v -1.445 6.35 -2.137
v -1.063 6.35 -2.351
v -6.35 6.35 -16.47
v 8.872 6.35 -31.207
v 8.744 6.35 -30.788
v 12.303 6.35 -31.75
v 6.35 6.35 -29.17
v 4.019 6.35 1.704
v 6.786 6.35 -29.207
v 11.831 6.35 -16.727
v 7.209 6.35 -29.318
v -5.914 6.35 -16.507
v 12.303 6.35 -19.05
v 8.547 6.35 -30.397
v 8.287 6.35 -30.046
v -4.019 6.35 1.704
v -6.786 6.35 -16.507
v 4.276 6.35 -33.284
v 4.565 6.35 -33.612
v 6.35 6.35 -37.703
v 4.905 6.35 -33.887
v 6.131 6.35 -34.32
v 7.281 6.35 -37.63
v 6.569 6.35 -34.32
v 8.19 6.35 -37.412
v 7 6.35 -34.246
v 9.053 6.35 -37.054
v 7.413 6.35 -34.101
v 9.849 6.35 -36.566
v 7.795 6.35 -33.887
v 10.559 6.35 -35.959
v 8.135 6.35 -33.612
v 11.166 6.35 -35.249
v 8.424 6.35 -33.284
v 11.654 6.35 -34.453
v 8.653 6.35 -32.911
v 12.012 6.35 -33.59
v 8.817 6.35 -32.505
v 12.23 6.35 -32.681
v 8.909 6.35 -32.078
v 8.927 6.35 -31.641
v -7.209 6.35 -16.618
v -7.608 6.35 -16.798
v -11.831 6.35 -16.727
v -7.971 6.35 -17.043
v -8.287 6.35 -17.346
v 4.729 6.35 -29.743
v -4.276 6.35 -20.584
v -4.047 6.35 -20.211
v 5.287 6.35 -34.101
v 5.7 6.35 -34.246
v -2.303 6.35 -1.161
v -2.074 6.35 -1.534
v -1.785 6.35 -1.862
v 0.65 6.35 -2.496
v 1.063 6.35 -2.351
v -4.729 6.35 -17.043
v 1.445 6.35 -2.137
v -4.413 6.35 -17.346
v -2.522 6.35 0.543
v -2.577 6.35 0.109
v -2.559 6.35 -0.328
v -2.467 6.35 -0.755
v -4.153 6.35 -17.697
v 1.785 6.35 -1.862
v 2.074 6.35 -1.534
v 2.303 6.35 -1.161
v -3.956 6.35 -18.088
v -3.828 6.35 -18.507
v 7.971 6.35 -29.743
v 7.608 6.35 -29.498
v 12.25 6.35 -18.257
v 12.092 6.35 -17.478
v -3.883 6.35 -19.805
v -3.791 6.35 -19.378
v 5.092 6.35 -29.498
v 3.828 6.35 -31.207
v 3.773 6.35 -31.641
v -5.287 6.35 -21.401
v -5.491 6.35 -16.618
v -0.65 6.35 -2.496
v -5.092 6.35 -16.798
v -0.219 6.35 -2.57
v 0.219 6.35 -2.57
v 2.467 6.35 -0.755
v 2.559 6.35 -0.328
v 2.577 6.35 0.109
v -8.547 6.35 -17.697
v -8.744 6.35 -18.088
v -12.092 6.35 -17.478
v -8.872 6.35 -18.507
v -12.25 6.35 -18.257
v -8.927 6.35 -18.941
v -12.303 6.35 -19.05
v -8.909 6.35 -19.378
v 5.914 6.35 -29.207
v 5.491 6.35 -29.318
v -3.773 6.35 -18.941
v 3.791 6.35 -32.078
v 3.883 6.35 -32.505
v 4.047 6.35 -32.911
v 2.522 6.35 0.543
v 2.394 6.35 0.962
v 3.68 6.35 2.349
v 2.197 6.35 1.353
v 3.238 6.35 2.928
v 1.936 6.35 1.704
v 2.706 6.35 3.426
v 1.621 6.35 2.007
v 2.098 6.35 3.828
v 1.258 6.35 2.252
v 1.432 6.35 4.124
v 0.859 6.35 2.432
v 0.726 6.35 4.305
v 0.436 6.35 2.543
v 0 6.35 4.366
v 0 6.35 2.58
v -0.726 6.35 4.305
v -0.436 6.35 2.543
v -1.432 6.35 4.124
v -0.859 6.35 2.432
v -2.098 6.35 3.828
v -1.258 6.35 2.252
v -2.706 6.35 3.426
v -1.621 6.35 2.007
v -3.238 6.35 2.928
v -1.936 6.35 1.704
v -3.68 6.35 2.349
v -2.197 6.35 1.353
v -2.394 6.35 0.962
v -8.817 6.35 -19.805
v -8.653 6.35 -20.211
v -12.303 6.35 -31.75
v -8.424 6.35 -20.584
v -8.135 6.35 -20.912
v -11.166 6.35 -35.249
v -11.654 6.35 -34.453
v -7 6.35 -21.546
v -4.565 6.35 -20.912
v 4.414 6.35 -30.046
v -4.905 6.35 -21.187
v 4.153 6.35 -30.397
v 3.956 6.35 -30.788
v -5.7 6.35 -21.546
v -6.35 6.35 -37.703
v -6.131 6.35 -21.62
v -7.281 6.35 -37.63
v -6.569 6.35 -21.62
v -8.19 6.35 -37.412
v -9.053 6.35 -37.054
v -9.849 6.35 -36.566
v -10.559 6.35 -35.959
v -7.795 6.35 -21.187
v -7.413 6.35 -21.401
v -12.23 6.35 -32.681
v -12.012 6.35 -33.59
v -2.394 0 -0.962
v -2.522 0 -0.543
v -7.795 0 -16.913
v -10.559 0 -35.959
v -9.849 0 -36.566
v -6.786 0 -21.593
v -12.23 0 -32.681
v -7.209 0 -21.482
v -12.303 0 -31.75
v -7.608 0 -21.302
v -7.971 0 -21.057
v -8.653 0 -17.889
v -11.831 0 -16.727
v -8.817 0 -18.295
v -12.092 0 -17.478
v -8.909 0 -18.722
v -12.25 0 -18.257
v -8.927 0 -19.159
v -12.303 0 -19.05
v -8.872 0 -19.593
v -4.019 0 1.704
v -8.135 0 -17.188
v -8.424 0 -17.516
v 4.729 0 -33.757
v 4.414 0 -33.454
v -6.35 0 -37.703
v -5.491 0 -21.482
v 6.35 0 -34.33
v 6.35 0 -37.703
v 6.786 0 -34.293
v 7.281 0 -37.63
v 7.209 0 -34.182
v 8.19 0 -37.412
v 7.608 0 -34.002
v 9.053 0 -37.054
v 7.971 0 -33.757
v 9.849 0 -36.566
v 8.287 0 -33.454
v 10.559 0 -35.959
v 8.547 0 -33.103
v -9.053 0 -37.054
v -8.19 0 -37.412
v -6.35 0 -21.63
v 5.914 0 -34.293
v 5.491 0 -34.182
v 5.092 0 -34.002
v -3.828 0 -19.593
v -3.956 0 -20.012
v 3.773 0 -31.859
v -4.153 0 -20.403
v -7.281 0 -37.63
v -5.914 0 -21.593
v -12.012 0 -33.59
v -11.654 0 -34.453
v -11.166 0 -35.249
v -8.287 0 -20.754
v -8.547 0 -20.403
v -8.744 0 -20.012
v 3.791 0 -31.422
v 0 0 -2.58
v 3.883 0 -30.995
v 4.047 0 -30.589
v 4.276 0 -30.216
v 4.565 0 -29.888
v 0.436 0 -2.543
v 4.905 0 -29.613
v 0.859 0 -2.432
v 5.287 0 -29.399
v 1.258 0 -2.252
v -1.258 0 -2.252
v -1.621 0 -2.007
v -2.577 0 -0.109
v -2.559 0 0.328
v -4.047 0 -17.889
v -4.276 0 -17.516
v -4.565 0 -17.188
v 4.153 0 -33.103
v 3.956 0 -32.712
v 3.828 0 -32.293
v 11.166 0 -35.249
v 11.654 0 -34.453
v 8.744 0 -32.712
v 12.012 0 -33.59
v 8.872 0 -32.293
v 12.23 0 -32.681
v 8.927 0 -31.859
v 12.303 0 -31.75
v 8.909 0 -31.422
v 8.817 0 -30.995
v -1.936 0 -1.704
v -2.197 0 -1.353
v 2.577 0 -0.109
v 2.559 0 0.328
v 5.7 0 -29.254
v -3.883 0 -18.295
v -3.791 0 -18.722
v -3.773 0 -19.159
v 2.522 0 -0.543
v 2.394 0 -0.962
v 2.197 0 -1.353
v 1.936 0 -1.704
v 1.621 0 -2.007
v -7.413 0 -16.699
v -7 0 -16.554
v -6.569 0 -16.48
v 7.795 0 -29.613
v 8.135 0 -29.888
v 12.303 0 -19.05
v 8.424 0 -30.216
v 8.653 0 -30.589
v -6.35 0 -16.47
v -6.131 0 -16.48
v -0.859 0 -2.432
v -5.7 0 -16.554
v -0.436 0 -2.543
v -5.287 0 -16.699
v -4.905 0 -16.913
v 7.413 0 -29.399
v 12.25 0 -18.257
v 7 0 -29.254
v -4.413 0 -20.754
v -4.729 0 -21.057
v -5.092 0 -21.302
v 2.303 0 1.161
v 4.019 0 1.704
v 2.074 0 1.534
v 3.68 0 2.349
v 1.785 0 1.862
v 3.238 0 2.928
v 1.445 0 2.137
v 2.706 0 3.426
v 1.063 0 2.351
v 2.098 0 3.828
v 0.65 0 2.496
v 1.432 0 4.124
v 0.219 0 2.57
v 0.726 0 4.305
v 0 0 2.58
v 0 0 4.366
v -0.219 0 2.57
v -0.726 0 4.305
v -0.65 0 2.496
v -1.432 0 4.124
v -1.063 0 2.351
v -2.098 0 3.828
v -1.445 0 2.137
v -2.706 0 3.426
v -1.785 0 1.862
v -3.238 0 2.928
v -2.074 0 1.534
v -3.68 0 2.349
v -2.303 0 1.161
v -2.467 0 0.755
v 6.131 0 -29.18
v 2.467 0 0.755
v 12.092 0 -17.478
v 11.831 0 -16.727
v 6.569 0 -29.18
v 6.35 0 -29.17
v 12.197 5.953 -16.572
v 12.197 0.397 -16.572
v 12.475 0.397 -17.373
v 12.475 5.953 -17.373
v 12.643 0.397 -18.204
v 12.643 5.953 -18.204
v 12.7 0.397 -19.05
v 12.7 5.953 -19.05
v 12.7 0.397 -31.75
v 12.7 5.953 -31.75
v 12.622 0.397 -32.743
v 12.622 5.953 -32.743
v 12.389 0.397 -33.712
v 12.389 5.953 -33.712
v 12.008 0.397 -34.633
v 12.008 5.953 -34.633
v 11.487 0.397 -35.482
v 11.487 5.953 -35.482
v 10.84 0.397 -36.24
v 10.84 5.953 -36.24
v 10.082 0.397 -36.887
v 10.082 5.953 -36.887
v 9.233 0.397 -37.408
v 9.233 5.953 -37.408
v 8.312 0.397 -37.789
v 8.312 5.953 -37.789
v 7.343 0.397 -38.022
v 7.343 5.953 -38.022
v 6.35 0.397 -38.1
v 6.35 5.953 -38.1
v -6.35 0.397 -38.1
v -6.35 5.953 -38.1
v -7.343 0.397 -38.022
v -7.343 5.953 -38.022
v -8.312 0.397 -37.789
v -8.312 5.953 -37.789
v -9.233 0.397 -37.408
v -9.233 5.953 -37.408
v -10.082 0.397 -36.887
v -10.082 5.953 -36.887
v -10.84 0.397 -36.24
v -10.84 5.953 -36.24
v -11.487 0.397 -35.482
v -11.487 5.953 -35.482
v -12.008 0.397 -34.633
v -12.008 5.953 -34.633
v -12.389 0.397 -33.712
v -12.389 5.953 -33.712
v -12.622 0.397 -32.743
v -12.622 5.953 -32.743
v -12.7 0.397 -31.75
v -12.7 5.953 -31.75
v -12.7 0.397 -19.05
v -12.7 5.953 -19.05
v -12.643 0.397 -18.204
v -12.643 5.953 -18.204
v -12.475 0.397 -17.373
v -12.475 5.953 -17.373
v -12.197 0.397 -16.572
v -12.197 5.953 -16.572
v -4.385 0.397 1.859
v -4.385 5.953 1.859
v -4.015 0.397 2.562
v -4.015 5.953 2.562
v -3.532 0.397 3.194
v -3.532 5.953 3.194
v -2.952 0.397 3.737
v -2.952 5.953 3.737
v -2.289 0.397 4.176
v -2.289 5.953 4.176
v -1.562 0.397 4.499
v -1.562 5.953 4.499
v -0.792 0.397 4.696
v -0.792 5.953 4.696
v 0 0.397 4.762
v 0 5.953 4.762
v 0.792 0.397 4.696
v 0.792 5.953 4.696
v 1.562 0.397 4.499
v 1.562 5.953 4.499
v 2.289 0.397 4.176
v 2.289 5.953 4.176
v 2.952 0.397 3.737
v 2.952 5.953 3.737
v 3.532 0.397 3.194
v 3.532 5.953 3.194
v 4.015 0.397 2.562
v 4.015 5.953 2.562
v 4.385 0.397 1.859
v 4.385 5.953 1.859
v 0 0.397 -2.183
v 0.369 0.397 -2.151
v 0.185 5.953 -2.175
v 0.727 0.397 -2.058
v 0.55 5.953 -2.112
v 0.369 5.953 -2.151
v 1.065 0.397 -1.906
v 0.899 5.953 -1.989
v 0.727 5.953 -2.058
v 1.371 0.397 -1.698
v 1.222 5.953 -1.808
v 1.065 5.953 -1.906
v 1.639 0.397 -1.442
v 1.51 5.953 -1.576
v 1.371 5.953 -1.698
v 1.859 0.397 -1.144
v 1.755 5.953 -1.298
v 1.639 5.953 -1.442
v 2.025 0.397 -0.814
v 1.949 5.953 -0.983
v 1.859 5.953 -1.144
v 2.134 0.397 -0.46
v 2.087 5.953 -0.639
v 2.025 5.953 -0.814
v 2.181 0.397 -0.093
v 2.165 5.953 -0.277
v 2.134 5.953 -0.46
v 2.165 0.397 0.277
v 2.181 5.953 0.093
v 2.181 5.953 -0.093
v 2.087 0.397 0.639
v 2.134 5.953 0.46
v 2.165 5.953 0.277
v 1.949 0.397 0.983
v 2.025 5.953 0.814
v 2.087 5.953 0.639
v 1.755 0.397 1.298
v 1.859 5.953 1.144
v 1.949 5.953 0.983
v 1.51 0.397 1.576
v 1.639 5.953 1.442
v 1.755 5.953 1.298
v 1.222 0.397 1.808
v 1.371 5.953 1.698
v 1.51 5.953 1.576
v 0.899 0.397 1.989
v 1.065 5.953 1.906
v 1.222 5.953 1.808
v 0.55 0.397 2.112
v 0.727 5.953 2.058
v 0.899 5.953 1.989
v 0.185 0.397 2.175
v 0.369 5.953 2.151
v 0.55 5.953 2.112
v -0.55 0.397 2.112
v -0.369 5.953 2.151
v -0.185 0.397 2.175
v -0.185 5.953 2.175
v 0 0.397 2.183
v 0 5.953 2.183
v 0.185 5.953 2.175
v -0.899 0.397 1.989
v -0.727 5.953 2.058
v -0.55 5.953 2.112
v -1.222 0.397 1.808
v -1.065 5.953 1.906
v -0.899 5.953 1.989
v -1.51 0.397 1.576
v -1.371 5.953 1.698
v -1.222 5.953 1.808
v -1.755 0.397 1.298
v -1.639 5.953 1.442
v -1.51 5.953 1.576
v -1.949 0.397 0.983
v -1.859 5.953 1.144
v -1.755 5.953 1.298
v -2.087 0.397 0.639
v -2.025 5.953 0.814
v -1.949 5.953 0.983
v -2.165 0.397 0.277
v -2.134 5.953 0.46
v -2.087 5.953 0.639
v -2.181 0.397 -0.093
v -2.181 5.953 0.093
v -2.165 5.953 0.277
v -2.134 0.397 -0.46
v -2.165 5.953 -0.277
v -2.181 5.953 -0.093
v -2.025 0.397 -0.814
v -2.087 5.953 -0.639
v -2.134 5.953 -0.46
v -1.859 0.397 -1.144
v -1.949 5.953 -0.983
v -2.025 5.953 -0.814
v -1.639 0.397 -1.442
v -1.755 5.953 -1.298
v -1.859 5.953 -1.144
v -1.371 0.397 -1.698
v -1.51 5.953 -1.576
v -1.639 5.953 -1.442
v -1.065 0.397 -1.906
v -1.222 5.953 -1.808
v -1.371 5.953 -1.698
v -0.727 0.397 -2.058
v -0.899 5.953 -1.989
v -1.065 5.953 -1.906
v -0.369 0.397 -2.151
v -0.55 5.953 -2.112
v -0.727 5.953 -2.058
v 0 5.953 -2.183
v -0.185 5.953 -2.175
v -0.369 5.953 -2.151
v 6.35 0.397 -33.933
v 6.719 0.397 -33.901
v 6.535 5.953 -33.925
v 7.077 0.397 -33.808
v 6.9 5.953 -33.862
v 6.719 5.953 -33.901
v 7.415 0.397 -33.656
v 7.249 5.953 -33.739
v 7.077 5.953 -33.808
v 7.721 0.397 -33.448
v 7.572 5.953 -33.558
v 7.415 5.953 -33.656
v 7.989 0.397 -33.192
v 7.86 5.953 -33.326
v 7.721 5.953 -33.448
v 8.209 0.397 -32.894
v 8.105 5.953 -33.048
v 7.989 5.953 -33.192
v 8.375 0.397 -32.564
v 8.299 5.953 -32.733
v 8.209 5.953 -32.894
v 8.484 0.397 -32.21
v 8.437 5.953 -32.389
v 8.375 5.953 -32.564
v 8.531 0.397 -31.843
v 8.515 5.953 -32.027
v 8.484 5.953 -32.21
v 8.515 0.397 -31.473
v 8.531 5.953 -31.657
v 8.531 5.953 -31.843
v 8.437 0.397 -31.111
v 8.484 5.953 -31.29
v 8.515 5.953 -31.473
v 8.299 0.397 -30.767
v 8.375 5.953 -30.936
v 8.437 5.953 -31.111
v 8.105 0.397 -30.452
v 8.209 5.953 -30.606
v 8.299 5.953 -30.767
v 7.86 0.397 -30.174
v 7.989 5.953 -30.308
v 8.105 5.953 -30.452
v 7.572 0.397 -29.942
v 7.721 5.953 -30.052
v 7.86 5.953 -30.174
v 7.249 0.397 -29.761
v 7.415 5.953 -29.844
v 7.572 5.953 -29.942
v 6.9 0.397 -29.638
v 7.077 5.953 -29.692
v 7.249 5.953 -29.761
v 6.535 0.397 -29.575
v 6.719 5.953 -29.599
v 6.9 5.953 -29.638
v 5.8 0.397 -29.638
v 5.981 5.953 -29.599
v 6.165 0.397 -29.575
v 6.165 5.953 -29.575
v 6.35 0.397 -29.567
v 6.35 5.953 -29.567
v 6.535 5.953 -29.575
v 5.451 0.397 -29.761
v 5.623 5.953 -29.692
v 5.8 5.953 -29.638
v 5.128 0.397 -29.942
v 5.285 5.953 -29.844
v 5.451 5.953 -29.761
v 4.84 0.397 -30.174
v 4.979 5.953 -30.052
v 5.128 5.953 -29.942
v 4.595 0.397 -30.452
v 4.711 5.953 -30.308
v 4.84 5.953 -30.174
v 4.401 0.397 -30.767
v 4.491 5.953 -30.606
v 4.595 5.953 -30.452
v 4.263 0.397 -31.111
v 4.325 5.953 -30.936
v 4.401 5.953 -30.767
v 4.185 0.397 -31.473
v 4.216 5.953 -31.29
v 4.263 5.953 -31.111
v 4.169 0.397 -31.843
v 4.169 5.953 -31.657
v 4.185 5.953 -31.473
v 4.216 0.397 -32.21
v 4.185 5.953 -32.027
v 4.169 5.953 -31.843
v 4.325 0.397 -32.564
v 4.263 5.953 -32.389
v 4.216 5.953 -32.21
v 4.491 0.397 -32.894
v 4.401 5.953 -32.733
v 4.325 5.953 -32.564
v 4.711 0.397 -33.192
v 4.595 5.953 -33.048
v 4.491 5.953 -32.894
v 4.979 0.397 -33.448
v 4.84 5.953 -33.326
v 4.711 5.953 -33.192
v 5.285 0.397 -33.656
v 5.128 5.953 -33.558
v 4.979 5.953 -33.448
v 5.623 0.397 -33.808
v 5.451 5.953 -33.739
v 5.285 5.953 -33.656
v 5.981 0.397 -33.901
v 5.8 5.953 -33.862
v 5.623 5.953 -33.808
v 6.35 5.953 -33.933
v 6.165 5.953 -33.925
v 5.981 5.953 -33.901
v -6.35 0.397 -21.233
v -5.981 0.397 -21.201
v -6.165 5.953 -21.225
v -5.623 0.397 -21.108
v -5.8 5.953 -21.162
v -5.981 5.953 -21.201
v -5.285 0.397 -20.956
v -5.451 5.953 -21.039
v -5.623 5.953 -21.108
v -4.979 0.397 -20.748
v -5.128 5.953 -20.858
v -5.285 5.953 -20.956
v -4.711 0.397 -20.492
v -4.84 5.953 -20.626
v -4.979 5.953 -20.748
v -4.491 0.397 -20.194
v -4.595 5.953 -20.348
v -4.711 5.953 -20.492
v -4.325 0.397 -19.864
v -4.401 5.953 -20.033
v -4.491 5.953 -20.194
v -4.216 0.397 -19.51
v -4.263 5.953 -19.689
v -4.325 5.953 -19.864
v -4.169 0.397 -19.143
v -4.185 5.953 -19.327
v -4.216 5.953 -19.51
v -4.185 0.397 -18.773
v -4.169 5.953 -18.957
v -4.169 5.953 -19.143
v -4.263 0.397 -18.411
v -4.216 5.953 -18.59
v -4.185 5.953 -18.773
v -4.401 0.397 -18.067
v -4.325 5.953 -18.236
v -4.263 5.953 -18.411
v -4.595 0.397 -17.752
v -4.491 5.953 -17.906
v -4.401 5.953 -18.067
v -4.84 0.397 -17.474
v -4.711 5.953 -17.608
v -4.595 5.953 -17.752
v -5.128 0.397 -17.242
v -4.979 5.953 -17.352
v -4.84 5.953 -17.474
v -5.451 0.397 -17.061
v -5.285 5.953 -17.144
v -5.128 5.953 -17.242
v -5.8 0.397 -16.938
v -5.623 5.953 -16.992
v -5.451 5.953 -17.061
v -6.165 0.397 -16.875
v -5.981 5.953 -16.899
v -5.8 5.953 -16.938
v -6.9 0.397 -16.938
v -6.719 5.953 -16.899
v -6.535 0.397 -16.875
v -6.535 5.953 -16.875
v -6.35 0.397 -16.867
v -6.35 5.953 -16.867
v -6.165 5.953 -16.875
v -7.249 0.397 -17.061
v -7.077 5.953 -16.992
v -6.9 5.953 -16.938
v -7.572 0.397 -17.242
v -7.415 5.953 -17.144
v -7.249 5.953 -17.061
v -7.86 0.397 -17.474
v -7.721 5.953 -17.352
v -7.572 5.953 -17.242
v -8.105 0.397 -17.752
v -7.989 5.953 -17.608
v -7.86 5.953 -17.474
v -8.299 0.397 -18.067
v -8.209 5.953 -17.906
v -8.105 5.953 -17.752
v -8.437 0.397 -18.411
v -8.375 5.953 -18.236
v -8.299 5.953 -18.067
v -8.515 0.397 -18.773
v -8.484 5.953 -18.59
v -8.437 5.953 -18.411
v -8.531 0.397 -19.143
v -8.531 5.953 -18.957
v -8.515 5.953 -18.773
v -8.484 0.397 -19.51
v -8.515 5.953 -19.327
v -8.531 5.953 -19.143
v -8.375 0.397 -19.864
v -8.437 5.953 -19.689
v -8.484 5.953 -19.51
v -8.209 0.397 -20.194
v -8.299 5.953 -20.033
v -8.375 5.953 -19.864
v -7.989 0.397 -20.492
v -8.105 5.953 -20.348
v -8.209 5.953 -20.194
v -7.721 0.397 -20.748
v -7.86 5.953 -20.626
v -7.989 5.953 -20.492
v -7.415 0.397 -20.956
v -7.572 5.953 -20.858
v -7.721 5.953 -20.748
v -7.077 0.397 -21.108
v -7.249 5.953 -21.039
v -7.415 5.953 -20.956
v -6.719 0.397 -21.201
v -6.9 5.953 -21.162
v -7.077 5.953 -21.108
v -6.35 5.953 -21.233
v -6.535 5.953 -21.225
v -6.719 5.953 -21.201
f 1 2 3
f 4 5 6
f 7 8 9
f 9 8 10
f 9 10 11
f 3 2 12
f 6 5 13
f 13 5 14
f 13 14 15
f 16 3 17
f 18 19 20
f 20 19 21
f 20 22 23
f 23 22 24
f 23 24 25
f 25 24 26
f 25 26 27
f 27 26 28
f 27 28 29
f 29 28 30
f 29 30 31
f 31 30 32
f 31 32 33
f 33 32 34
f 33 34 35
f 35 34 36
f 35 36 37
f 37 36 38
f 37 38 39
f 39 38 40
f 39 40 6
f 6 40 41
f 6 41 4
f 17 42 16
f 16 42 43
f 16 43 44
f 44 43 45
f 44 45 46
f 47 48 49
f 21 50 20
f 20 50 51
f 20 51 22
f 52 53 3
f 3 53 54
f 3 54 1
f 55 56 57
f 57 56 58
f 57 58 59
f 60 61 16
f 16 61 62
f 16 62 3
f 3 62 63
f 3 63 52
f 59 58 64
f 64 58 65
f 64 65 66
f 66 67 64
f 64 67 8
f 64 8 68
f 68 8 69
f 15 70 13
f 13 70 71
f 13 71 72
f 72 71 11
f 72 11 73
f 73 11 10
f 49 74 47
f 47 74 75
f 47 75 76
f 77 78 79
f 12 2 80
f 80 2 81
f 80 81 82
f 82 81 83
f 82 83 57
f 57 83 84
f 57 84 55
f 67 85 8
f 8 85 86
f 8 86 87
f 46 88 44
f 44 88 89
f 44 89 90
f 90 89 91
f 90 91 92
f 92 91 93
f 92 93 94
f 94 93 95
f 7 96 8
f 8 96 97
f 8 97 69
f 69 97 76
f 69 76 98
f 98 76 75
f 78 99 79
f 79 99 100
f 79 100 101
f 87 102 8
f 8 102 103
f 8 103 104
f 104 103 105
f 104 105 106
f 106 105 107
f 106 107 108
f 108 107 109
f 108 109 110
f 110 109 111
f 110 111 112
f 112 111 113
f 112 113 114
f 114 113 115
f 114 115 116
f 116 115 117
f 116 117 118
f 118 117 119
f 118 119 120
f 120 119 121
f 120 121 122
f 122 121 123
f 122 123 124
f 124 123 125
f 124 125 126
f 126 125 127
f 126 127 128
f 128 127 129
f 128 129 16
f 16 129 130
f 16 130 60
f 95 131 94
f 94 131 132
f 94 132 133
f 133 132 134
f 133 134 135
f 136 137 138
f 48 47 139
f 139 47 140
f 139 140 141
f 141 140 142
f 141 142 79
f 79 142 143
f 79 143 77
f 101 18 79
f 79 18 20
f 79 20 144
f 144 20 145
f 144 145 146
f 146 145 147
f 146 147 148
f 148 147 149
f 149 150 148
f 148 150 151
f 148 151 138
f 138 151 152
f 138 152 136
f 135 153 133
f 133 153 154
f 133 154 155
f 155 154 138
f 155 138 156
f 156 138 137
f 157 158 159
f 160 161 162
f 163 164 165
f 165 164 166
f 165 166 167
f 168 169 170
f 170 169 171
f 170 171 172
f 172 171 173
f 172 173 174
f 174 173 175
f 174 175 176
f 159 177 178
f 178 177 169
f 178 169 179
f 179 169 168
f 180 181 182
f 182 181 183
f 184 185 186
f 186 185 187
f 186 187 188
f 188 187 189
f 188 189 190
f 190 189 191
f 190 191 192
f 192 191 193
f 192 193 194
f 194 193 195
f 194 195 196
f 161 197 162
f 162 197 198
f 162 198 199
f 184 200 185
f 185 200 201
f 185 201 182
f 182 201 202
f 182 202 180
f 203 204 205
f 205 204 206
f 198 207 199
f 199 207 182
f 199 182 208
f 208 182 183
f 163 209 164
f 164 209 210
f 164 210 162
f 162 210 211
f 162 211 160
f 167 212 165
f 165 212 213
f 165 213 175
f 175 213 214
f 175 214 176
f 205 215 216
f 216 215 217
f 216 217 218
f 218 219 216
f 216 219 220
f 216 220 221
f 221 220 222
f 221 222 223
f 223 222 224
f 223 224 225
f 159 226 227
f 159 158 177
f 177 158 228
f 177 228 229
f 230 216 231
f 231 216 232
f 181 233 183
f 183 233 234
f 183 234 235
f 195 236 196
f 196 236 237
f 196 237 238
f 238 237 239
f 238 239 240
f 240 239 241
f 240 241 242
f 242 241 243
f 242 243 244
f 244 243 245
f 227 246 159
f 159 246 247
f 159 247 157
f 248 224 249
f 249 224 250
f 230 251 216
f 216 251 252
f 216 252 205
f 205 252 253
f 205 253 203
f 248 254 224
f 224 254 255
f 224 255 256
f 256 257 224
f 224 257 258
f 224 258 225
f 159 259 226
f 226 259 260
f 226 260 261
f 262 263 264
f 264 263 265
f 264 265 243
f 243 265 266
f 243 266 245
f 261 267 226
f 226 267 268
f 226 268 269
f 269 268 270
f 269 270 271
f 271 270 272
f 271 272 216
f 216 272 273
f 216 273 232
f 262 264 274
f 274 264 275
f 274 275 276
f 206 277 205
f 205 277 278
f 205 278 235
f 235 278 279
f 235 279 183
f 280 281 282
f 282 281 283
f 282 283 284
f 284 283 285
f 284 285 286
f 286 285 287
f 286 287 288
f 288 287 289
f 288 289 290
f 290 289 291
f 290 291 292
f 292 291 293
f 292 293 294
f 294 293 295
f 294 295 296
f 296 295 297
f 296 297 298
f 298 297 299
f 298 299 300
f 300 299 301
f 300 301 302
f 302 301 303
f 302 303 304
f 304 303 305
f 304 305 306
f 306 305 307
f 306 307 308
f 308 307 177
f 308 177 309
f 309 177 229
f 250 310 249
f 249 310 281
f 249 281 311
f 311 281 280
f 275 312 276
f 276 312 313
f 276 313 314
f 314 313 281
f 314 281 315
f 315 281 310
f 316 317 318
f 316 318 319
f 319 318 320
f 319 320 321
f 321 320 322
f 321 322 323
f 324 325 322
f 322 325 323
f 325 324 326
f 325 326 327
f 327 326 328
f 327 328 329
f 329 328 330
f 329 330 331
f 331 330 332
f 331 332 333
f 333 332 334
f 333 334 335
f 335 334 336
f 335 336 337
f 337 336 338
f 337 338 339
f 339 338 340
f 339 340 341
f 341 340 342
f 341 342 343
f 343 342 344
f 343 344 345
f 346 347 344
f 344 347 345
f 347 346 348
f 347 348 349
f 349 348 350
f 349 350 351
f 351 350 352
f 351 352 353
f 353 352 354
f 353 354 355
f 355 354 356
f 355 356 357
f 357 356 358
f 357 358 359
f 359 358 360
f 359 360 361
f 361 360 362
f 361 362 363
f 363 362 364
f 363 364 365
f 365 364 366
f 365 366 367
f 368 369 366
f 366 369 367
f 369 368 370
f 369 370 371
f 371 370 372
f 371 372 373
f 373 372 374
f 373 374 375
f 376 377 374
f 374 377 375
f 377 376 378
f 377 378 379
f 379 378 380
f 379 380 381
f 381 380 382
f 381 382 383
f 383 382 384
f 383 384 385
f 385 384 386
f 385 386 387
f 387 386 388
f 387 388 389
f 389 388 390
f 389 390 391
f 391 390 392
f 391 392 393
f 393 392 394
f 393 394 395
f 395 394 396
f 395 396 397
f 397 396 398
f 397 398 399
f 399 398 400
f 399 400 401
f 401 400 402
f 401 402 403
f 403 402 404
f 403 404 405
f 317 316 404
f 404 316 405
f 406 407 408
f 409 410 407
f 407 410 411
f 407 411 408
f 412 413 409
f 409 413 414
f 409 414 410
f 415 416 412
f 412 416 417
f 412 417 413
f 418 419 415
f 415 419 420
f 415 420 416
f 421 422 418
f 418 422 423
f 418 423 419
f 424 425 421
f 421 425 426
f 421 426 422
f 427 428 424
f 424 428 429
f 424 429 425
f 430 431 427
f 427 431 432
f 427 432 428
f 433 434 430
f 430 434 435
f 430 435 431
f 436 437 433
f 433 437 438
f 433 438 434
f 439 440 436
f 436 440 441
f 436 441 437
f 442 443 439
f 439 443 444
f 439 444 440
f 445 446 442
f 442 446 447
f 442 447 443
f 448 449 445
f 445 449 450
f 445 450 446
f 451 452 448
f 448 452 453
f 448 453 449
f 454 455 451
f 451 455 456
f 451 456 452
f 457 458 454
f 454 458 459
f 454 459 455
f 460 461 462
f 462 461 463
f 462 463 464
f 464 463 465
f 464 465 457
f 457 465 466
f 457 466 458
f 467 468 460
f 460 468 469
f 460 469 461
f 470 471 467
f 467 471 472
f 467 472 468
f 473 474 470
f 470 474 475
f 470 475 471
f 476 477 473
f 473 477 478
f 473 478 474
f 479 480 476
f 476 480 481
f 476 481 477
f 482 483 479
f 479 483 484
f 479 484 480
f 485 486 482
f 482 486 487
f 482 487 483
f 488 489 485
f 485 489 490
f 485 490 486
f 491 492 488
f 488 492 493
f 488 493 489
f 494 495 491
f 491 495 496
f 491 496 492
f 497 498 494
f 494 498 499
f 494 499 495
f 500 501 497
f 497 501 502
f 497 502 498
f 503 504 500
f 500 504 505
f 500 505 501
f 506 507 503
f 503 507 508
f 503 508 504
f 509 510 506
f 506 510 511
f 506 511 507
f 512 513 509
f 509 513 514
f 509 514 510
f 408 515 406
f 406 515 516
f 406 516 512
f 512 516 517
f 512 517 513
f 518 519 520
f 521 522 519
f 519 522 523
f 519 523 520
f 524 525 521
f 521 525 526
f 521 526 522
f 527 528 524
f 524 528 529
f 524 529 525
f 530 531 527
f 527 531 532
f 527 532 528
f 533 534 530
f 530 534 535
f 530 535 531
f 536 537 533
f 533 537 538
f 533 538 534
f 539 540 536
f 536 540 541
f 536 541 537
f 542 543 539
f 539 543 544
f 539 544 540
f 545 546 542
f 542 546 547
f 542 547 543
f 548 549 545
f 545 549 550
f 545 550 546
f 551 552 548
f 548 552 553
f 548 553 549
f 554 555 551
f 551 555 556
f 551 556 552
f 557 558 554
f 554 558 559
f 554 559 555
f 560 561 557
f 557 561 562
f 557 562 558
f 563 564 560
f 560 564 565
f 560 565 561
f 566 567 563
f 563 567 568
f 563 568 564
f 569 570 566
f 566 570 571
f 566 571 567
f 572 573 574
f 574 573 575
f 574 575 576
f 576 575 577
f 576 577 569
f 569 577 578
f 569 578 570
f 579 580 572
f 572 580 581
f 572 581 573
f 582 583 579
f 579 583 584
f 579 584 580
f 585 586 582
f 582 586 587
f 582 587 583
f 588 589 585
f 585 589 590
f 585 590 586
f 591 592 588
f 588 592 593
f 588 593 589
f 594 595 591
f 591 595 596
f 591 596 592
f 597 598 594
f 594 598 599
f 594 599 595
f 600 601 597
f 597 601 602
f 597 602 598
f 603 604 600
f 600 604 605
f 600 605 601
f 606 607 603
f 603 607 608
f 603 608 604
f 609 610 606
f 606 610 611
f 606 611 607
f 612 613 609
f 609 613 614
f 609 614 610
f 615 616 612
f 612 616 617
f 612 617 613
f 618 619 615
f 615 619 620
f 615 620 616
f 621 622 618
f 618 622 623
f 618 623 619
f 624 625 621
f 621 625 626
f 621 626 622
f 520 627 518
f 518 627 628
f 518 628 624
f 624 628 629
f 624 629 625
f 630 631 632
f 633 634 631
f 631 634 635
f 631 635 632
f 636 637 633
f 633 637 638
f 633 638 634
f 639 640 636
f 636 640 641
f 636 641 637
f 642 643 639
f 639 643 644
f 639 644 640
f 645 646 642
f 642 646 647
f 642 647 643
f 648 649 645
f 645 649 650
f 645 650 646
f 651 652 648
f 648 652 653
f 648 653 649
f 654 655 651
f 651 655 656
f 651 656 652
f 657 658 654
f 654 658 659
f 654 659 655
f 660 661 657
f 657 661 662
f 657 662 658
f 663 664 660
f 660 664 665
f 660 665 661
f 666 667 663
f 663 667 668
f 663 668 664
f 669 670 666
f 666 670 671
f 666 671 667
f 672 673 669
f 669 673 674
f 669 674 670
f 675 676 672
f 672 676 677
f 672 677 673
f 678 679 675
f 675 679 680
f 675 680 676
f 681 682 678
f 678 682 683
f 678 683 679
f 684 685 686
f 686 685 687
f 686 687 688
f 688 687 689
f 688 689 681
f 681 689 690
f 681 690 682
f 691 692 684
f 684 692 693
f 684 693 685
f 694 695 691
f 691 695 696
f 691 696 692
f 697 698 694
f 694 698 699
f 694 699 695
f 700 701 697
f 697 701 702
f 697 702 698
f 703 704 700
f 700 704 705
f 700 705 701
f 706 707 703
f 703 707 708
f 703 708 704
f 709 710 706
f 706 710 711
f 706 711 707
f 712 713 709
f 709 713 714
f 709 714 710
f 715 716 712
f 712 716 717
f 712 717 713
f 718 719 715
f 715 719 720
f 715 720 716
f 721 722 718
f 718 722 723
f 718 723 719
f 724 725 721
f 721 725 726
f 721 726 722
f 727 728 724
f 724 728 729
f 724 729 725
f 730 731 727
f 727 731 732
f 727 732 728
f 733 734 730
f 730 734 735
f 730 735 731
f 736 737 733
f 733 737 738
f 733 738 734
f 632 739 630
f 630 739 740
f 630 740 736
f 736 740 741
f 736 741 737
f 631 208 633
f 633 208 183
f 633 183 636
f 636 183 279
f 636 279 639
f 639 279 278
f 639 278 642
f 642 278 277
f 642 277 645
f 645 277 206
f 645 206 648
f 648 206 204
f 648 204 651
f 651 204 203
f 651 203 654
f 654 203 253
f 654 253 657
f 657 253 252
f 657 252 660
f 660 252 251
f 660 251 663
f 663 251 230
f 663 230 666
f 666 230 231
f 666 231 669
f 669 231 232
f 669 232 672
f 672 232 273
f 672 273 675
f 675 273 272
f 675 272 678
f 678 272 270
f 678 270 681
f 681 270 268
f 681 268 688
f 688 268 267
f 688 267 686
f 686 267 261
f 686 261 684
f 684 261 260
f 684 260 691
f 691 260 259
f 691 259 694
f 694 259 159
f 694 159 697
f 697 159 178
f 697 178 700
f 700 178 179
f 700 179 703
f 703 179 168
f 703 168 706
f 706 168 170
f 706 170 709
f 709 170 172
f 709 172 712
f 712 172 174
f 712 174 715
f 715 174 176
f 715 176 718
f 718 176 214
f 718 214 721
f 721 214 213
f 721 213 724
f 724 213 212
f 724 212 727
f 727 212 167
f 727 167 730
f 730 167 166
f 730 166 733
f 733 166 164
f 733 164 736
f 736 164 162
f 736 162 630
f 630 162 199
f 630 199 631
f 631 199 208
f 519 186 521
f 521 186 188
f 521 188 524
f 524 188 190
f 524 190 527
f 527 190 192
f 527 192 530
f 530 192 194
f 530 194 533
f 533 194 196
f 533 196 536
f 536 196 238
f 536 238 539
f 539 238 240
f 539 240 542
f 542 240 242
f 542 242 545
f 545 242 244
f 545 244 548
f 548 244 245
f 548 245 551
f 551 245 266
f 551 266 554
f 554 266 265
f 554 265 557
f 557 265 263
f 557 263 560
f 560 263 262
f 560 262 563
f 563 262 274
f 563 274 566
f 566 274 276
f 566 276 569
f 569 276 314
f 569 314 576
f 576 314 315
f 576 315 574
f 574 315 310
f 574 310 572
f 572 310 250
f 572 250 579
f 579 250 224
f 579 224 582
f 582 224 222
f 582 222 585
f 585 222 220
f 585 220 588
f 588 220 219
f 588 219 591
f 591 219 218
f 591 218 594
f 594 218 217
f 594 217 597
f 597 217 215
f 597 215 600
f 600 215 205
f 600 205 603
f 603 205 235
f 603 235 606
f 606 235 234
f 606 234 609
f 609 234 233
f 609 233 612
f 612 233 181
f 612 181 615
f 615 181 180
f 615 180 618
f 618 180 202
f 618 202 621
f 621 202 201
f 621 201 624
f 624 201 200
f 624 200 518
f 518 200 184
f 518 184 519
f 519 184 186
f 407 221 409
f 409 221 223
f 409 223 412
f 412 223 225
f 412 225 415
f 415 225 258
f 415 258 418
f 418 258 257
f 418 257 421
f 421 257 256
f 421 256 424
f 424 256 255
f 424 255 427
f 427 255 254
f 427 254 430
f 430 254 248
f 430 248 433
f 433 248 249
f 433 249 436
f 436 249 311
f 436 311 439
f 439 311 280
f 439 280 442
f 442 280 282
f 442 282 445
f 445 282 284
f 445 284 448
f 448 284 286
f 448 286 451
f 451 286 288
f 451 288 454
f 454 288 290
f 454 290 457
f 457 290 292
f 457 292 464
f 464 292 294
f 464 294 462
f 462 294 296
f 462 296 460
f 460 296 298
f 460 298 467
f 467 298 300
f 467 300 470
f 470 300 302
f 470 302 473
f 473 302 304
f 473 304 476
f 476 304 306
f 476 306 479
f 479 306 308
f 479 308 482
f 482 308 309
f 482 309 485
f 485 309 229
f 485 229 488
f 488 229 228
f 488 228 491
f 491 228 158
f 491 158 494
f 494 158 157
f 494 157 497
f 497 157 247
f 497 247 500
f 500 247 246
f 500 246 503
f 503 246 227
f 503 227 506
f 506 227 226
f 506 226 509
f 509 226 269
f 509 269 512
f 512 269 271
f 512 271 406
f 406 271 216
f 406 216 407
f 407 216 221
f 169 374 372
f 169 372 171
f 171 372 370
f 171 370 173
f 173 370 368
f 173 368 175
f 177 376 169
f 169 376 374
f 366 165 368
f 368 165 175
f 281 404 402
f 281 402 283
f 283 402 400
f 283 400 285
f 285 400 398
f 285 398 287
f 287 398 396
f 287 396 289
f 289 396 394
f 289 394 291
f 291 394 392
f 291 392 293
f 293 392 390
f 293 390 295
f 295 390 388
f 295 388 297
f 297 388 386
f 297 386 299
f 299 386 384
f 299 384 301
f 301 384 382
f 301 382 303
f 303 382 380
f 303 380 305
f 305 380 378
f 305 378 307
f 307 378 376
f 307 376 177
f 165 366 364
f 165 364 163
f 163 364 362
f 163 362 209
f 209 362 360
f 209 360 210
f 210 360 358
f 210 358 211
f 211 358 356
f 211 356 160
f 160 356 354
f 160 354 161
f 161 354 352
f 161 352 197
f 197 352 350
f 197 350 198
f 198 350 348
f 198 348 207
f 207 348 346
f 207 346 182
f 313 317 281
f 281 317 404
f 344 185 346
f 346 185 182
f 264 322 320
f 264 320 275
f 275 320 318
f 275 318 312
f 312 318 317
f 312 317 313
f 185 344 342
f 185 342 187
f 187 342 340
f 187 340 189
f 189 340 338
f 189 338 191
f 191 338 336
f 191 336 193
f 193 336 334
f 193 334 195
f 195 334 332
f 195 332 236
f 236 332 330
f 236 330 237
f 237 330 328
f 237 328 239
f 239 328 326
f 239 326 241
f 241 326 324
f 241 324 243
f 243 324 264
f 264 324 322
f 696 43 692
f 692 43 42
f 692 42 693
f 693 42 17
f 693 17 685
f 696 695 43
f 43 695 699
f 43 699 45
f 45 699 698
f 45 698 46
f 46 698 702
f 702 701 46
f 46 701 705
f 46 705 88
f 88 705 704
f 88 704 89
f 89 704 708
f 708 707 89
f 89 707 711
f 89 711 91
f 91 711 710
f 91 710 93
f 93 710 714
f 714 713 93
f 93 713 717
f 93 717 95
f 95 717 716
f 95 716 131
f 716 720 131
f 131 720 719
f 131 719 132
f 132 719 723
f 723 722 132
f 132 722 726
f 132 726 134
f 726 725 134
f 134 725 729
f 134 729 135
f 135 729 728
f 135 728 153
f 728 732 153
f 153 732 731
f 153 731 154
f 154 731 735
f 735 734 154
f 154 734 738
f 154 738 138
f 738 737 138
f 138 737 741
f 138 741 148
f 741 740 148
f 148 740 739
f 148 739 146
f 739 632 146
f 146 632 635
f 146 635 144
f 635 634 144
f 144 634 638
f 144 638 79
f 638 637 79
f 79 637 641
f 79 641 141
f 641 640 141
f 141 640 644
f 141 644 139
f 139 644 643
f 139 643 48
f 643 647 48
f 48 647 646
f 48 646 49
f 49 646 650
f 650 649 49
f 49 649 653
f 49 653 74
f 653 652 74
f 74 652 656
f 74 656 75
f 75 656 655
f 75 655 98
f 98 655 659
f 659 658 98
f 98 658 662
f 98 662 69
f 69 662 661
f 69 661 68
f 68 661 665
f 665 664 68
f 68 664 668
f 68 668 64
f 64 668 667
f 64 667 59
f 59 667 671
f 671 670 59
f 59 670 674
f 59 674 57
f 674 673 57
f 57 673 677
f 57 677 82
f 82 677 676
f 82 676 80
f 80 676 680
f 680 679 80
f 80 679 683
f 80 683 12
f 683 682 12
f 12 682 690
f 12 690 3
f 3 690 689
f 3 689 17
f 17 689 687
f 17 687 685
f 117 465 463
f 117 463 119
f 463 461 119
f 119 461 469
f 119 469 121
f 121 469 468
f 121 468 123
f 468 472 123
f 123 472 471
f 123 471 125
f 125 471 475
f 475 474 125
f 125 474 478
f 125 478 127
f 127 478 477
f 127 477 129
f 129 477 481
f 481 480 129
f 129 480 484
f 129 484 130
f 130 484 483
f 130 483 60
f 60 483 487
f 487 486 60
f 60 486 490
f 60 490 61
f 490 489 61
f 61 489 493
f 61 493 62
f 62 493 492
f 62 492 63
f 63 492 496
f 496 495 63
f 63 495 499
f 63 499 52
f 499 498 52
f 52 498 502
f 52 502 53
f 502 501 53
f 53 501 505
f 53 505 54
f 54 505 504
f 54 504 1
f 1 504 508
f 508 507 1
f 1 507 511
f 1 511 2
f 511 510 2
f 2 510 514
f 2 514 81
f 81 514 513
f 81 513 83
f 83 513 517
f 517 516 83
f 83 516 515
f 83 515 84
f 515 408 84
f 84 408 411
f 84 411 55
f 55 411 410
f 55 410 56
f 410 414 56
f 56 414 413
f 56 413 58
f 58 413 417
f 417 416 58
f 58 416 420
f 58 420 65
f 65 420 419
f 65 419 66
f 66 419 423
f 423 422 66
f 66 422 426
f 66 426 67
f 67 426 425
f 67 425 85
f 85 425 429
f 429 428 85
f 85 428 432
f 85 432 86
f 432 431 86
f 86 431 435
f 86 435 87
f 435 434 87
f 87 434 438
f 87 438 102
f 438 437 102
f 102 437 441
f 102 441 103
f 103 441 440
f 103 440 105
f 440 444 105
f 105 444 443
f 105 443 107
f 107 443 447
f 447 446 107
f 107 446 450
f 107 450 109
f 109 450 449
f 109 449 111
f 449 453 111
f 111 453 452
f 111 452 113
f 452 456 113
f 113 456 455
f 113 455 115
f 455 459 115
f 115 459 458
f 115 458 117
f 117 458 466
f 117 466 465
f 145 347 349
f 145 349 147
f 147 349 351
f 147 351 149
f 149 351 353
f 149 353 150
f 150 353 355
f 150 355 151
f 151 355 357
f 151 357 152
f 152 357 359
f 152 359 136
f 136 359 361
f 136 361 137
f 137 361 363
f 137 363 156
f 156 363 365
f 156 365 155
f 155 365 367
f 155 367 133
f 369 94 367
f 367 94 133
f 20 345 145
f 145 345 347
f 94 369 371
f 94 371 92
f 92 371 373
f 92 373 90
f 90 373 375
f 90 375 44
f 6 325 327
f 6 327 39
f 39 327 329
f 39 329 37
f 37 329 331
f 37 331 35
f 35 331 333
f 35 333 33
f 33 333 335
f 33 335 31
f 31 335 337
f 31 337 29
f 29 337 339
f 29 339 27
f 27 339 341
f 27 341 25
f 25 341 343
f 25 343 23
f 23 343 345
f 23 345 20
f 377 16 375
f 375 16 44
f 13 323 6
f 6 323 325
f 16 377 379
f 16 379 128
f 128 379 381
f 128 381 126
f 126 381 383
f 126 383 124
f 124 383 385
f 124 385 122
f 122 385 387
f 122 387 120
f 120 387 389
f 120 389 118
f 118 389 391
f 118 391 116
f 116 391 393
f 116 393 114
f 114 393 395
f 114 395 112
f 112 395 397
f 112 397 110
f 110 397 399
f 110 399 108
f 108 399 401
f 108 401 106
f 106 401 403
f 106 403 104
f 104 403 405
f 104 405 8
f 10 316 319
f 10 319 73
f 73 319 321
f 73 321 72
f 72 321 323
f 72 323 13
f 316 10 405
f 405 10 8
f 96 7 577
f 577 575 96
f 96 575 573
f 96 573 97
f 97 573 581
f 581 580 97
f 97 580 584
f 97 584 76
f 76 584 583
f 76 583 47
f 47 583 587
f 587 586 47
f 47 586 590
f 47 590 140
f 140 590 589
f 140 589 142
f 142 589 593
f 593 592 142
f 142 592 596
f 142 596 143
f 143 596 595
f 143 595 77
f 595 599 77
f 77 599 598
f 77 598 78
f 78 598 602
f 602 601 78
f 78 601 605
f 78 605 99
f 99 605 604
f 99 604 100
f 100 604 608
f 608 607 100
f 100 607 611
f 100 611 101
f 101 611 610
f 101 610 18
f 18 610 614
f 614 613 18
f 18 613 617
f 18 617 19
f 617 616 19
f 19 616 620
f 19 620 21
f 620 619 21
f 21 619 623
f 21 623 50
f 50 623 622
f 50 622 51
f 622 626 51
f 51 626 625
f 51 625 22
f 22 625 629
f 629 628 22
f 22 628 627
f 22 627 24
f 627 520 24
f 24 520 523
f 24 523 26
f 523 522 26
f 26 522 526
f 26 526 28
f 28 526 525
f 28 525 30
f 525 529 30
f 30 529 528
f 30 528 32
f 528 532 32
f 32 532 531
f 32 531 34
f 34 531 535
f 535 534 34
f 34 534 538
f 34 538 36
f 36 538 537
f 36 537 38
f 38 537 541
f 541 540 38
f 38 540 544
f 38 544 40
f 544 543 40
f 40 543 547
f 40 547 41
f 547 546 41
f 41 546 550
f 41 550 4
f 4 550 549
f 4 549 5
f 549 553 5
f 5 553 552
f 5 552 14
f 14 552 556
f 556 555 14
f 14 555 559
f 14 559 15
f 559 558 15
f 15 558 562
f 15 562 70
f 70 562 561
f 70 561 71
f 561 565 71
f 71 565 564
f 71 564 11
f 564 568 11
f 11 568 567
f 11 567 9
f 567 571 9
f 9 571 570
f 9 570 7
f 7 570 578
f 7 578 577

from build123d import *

# Parameters (mm, degrees)
SKETCH1_R           = 2.1828125
BOSS_EXTRUDE1_DEPTH = 6.35
CHAMFER1_SIZE       = 0.396875


with BuildPart() as part:
    # Sketch1 → Boss-Extrude1 (new body)
    with BuildSketch(Plane(origin=(0, 0, 0), x_dir=(1, 0, 0), z_dir=(0, 1, 0))):
        with BuildLine():
            Line((-12.7, 19.05), (-12.7, 31.75))
            ThreePointArc((-12.7, 31.75), (-10.840128061, 36.240128061), (-6.35, 38.1))
            Line((-6.35, 38.1), (6.35, 38.1))
            ThreePointArc((6.35, 38.1), (10.840128061, 36.240128061), (12.7, 31.75))
            Line((12.7, 31.75), (12.7, 19.05))
            ThreePointArc((12.7, 19.05), (12.572860713, 17.785680204), (12.196534001, 16.571988666))
            Line((12.196534001, 16.571988666), (4.384900501, -1.8585085))
            ThreePointArc((4.384900501, -1.8585085), (0, -4.7625), (-4.384900501, -1.8585085))
            Line((-4.384900501, -1.8585085), (-12.196534001, 16.571988666))
            ThreePointArc((-12.196534001, 16.571988666), (-12.572860713, 17.785680204), (-12.7, 19.05))
        make_face()
        Circle(SKETCH1_R, mode=Mode.SUBTRACT)
        with Locations((6.35, 31.75)):
            Circle(SKETCH1_R, mode=Mode.SUBTRACT)
        with Locations((-6.35, 19.05)):
            Circle(SKETCH1_R, mode=Mode.SUBTRACT)
    extrude(amount=BOSS_EXTRUDE1_DEPTH)

    # Chamfer1
    chamfer1_edges = [part.edges().sort_by_distance(p)[0] for p in [
        (8.290717251, 0, -7.356740083),
        (0, 0, 4.7625),
        (-8.290717251, 0, -7.356740083),
        (-12.572860713, 0, -17.785680204),
        (-12.7, 0, -25.4),
        (-10.840128061, 0, -36.240128061),
        (0, 0, -38.1),
        (10.840128061, 6.35, -36.240128061),
        (10.840128061, 0, -36.240128061),
        (12.7, 0, -25.4),
        (12.572860713, 0, -17.785680204),
        (0, 6.35, -38.1),
        (-10.840128061, 6.35, -36.240128061),
        (-12.7, 6.35, -25.4),
        (-2.1828125, 0, 0),
        (-2.1828125, 6.35, 0),
        (-12.572860713, 6.35, -17.785680204),
        (4.1671875, 0, -31.75),
        (4.1671875, 6.35, -31.75),
        (-8.290717251, 6.35, -7.356740083),
        (-8.5328125, 0, -19.05),
        (-8.5328125, 6.35, -19.05),
        (0, 6.35, 4.7625),
        (8.290717251, 6.35, -7.356740083),
        (12.572860713, 6.35, -17.785680204),
        (12.7, 6.35, -25.4),
    ]]
    chamfer(chamfer1_edges, length=CHAMFER1_SIZE)


solid = part.part
